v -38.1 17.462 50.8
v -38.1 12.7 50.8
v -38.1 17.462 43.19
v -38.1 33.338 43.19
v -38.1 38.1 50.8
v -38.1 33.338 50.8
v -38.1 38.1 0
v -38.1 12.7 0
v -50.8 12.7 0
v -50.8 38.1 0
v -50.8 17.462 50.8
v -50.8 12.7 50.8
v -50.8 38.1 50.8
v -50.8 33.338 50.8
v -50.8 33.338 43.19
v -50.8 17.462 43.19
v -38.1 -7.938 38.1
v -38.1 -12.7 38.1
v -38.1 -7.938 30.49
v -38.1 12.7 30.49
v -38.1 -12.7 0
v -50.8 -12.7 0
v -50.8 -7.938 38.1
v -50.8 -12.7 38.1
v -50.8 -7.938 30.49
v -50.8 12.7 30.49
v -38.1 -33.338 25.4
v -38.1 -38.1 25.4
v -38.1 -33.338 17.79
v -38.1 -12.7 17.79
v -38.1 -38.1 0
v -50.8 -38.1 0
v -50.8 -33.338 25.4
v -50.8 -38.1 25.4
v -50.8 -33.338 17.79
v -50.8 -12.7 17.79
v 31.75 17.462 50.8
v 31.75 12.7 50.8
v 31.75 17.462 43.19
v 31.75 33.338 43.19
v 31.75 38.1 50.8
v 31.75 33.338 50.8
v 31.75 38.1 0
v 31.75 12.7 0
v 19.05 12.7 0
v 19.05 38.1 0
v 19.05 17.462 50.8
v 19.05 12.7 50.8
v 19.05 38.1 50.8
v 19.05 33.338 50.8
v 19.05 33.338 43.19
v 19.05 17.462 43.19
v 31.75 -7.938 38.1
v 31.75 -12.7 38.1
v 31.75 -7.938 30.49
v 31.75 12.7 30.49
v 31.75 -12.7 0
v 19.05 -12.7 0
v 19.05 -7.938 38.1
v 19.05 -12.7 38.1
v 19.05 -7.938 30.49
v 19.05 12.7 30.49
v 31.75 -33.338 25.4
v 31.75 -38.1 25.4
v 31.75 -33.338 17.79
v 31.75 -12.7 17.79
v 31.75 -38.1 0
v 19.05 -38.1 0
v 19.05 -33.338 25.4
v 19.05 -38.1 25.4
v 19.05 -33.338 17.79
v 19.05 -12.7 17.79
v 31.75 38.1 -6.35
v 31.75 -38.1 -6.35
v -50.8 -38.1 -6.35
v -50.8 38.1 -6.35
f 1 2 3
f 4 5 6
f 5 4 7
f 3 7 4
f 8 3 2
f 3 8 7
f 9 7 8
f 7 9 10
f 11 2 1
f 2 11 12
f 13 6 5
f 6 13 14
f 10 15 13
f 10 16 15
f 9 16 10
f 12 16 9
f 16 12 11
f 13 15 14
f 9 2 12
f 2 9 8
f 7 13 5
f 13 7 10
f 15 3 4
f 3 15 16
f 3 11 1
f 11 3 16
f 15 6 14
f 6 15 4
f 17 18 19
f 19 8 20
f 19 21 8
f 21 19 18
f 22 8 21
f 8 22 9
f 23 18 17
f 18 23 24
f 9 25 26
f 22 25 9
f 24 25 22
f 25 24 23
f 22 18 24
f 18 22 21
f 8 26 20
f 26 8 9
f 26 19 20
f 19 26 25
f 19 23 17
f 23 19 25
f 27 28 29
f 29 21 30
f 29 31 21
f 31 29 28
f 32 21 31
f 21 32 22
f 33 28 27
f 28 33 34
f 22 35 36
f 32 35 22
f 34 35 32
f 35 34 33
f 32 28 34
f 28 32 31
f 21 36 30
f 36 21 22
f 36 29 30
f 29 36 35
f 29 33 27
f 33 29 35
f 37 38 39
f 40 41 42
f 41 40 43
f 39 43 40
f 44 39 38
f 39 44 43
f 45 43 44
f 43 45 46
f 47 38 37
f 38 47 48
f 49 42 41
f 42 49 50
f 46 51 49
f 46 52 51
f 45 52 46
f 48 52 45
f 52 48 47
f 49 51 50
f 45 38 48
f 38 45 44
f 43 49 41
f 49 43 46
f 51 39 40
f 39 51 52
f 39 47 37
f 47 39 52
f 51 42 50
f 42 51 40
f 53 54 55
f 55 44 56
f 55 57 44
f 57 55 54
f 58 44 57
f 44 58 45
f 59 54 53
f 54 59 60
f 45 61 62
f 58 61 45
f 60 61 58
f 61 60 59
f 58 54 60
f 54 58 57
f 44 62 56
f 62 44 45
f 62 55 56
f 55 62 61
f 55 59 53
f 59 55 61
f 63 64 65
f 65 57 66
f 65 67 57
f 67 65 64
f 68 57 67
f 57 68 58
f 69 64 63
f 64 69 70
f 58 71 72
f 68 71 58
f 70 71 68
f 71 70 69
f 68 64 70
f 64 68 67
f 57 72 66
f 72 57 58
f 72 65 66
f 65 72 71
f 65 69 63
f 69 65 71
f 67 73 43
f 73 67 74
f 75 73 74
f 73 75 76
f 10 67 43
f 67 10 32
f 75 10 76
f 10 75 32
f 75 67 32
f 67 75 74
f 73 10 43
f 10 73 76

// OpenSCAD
// Toothbrush Holder.scad - Bathroom Toothbrush holder

IN_TO_MM = 25.4;

POLY_N = 80;

module support_post(height, back_width) {
    translate([0, 0, -height]) {
        difference() {
            cube([0.5  * IN_TO_MM, 1 * IN_TO_MM, height]);
            
            translate([-0.05  * IN_TO_MM, (0.375 * IN_TO_MM)/2 + back_width, -0.01]) {
                cube([0.6  * IN_TO_MM, (0.625 * IN_TO_MM) - back_width, 0.3 * IN_TO_MM]);
            }
        }
    }
}

module side() {
    support_post(2.00 * IN_TO_MM, 0 * IN_TO_MM);
    translate([0 * IN_TO_MM, 1 * IN_TO_MM, 0 * IN_TO_MM]) support_post(1.50 * IN_TO_MM, -0.25 * IN_TO_MM);
    translate([0 * IN_TO_MM, 2 * IN_TO_MM, 0 * IN_TO_MM]) support_post(1.00 * IN_TO_MM, -0.25 * IN_TO_MM);
}

rotate([180, 0, 0 ]) {
    translate([-2 * IN_TO_MM, -1.5 * IN_TO_MM, 0 * IN_TO_MM]) {
        cube([3.25 * IN_TO_MM, 3 * IN_TO_MM, 0.25 * IN_TO_MM]);
    
        side();
        translate([2.75 * IN_TO_MM, 0 * IN_TO_MM, 0 * IN_TO_MM]) side();
    }
}
